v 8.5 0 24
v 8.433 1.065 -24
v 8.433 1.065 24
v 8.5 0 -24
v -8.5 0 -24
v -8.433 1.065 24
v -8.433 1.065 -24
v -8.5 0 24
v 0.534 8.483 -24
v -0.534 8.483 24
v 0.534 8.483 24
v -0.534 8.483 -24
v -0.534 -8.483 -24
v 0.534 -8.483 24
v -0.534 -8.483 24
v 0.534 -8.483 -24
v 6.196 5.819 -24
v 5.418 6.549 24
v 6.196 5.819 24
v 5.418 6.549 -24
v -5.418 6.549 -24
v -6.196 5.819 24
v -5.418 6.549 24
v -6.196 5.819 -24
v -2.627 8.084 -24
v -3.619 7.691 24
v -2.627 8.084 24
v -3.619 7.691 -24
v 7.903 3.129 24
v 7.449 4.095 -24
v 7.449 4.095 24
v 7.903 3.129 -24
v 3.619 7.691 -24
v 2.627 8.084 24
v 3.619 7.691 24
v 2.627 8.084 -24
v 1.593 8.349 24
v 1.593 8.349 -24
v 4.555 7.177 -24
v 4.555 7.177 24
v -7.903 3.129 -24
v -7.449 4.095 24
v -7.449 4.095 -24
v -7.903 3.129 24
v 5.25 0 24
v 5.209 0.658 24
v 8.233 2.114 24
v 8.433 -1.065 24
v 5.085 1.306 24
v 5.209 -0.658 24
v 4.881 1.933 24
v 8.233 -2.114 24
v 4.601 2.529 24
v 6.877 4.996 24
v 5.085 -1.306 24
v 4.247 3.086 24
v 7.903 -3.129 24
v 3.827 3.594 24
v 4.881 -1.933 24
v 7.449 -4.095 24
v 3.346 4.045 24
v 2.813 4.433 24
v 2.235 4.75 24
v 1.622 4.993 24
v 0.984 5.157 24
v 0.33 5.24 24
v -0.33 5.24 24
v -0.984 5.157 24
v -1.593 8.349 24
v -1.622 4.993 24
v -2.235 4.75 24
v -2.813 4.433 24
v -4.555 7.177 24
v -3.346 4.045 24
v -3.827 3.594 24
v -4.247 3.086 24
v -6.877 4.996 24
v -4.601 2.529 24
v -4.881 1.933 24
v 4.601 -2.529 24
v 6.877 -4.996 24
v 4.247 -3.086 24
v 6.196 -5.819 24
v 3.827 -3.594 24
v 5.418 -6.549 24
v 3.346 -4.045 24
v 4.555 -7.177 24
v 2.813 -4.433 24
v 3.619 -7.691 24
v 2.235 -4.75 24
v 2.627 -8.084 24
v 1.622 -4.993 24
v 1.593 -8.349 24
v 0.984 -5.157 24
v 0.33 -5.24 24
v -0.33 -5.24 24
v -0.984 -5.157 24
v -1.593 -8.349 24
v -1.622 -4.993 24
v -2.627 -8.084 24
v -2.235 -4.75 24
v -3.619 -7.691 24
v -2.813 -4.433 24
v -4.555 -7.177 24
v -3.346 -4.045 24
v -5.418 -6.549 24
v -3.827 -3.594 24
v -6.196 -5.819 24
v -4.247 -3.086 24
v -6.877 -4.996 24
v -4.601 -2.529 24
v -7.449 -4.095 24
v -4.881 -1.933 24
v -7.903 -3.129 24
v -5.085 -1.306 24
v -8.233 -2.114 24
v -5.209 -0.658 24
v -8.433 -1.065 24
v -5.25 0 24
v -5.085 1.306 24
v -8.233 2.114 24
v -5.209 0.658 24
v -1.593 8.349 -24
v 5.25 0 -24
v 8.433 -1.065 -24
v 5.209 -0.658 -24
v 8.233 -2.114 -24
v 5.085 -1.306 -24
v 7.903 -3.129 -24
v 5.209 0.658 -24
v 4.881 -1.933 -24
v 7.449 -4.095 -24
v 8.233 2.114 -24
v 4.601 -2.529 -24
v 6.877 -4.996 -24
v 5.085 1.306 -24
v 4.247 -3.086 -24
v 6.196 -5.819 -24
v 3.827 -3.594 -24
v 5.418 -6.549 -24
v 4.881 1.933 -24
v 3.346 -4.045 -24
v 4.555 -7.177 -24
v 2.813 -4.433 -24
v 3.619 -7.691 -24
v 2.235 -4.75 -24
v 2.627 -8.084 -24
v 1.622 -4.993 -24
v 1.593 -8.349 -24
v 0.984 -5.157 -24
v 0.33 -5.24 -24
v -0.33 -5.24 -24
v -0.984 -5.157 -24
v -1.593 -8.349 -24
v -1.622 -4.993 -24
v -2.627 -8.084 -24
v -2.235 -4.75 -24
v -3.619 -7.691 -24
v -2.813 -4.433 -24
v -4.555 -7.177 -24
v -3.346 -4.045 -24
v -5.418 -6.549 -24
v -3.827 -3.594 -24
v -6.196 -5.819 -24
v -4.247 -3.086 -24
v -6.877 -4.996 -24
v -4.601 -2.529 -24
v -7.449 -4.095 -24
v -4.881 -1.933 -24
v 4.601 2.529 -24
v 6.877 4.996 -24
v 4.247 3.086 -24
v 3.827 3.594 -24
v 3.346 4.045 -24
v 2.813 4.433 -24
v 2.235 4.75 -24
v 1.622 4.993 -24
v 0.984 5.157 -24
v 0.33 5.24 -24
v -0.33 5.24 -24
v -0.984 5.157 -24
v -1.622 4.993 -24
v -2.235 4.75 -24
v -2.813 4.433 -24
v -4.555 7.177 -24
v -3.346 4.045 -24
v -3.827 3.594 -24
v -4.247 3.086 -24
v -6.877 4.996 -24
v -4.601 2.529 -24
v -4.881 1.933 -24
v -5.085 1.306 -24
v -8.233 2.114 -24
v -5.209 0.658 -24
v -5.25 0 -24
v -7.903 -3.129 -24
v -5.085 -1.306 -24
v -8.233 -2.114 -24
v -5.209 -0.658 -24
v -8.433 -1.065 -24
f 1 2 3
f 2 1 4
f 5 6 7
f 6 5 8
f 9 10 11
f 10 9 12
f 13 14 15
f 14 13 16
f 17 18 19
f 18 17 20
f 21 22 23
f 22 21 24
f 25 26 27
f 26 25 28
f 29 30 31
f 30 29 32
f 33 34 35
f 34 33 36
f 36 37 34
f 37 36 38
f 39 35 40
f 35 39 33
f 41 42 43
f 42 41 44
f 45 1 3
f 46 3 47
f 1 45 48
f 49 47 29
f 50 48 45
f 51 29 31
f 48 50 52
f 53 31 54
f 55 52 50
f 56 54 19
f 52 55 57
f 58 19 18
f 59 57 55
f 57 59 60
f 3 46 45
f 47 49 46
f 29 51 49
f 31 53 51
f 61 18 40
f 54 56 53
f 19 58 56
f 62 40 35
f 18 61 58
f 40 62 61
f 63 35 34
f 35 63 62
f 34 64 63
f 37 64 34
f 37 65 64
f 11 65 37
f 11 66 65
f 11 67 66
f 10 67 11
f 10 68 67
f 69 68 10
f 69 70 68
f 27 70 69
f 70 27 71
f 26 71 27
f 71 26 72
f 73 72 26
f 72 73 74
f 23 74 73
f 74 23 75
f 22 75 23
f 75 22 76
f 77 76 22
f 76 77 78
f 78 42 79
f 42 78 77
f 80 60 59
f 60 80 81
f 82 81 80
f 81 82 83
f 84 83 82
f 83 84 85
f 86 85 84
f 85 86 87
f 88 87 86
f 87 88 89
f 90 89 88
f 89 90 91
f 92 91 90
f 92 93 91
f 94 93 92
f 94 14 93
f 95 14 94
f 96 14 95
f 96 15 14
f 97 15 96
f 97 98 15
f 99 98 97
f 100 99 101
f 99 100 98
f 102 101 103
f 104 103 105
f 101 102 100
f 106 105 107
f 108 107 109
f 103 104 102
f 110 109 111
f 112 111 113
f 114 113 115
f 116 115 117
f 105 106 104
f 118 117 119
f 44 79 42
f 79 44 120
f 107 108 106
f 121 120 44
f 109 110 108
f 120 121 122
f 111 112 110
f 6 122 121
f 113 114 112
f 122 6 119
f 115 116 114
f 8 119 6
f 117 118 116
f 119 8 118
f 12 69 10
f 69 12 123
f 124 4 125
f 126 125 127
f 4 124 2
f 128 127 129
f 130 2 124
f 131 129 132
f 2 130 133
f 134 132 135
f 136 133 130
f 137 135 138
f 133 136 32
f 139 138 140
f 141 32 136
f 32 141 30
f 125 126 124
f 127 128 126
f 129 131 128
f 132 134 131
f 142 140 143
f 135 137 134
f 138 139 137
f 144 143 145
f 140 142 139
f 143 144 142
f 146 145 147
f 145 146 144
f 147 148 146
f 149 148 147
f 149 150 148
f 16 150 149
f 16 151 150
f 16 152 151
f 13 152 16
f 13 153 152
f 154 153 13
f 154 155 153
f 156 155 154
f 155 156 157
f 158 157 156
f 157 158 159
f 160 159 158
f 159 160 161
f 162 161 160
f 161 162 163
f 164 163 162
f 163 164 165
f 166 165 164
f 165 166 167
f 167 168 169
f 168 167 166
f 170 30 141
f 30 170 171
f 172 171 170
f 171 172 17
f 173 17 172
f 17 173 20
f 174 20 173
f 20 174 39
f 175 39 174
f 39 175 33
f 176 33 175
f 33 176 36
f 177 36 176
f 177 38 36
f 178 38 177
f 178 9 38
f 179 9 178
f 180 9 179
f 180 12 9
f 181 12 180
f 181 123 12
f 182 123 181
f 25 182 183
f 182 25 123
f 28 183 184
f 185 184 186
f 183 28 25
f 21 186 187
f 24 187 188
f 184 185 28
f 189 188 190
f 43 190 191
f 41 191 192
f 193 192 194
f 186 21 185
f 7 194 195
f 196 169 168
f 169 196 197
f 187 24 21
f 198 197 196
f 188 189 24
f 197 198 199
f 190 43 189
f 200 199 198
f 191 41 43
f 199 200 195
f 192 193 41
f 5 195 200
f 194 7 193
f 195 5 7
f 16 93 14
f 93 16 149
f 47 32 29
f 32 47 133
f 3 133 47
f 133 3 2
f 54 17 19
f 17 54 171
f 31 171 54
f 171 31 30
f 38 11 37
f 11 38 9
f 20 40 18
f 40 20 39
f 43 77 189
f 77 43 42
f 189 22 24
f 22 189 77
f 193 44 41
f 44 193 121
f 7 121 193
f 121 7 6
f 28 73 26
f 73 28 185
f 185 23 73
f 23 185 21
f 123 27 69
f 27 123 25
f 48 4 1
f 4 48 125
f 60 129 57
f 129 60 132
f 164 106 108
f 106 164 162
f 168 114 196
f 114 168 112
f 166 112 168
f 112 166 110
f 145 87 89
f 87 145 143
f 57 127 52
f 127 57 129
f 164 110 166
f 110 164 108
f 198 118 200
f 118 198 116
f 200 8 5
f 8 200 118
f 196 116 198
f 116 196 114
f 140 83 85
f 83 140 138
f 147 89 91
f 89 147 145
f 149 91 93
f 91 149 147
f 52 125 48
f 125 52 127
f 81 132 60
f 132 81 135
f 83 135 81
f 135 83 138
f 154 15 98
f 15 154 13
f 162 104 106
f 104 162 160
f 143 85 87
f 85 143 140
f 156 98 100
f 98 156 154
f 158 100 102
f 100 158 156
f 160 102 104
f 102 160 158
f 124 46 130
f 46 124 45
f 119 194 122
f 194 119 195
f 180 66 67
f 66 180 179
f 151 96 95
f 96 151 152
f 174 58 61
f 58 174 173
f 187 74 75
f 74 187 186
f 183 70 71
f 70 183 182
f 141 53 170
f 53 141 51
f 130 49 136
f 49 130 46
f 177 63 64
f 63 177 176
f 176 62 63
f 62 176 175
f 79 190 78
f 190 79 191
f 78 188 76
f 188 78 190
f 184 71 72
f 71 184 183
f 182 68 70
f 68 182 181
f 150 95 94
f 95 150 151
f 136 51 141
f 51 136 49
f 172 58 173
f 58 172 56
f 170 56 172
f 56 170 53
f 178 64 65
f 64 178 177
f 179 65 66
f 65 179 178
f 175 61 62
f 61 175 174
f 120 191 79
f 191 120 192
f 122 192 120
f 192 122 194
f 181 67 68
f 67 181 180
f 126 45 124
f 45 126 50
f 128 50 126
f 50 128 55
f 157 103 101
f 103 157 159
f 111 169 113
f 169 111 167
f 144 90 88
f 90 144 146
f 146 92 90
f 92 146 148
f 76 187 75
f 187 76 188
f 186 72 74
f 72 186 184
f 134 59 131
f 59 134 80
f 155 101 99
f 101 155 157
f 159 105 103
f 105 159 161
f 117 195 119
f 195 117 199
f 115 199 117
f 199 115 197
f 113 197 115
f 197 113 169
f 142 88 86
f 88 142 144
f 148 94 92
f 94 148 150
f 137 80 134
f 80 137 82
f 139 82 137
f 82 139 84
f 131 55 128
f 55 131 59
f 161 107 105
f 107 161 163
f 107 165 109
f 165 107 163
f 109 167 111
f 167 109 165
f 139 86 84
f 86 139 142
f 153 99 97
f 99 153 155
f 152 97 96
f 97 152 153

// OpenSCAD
$fn = 50;


difference() {
	union() {
		translate(v = [0, 0, -24.0000000000]) {
			cylinder(h = 48, r = 8.5000000000);
		}
	}
	union() {
		translate(v = [0, 0, -100.0000000000]) {
			cylinder(h = 200, r = 5.2500000000);
		}
	}
}
